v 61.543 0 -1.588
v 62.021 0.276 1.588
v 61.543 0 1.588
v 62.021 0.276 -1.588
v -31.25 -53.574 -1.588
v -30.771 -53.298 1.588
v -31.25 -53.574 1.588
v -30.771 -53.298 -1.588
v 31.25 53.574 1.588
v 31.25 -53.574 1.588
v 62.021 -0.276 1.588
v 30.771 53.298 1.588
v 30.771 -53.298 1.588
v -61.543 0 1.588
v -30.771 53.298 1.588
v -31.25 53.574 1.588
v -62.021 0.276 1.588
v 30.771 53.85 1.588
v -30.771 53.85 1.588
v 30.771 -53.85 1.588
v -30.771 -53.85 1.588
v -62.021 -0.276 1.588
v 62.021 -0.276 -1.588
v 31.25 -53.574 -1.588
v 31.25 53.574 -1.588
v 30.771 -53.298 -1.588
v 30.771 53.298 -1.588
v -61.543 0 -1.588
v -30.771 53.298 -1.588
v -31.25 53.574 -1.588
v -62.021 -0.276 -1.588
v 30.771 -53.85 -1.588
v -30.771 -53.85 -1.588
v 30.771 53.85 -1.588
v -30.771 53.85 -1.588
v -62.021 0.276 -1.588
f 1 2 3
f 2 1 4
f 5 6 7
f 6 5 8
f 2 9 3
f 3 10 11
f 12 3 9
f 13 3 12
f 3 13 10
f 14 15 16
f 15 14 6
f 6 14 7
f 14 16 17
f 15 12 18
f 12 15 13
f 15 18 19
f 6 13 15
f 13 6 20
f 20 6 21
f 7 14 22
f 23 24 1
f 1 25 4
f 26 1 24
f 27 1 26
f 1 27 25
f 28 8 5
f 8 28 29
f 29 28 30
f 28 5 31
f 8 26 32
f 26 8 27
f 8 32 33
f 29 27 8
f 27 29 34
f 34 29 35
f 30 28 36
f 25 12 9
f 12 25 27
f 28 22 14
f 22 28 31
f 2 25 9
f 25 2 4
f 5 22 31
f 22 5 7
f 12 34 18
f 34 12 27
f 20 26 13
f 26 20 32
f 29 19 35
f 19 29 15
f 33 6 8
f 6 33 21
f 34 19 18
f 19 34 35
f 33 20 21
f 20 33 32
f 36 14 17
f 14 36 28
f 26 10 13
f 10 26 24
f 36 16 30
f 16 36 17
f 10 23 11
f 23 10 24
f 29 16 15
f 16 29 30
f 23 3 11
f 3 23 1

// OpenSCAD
include <./MCAD/shapes.scad>;

inch = 25.4;

wall_height = 1 * inch;
wall_thickness = 1/4 * inch;
arena_radius = (4.5 * inch) / 2;
arena_diameter = arena_radius * 2;
center = true;
draw_box = false;
draw_inlay = true;

difference() {

    if (draw_box) {    
      color("lightblue") hexagon( arena_diameter, wall_height );
      color("darkblue") translate([0, 0, wall_thickness]) hexagon( arena_diameter - wall_thickness, wall_height + wall_thickness );
    }

    if (draw_inlay) {
      color("pink") hexagon( (arena_diameter - wall_thickness) - 0.25, wall_thickness / 2 );
    }
}
